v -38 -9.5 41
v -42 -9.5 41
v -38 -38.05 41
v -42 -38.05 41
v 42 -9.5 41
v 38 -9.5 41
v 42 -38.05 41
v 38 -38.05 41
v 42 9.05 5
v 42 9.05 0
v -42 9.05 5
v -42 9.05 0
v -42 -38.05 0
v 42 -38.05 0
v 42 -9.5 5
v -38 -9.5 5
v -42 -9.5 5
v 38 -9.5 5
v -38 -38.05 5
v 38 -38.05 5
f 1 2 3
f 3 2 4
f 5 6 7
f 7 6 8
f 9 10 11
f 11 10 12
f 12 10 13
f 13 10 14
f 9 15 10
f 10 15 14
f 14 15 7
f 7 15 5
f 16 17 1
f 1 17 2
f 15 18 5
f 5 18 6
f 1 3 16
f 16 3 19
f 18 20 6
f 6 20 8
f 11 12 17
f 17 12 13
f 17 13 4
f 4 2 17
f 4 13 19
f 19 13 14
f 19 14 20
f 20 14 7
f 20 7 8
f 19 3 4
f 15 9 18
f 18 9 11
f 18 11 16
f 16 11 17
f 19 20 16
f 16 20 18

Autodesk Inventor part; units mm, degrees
ref_plane "YZ Plane" through (0, 0, 0) normal (1, 0, 0) x (0, 1, 0)
ref_plane "XZ Plane" through (0, 0, 0) normal (0, 1, 0) x (-1, 0, 0)
ref_plane "XY Plane" through (0, 0, 0) normal (0, 0, 1) x (1, 0, 0)
sketch "Эскиз1" plane through (0, 0, 0) normal (0, 0, 1) x (1, 0, 0)
  line L0 (-38, 52.38) -> (38, 52.38) construction
  line L1 (38, 52.38) -> (38, -52.38) construction
  line L2 (38, -52.38) -> (-38, -52.38) construction
  line L3 (-38, -52.38) -> (-38, 52.38) construction
  line L4 (-26.6205, -33.05) -> (26.6205, -33.05) construction
  line L5 (26.6205, -33.05) -> (26.6205, 33.05) construction
  line L6 (26.6205, 33.05) -> (-26.6205, 33.05) construction
  line L7 (-26.6205, 33.05) -> (-26.6205, -33.05) construction
  line L8 (0, 33.05) -> (0, 38.05) construction
  line L9 (0, -33.05) -> (0, -38.05) construction
  line L10 (-38, 38.05) -> (38, 38.05)
  line L11 (38, 38.05) -> (38, -38.05)
  line L12 (38, -38.05) -> (-38, -38.05)
  line L13 (-38, -38.05) -> (-38, 38.05)
  dimension "d0" = 76
  dimension "d1" = 104.76
  dimension "d2" = 53.241
  dimension "d3" = 66.1
  dimension "d4" = 5
  dimension "d5" = 5
extrude "Выдавливание1" add sketch "Эскиз1" along normal blind 5
sketch "Эскиз2" plane through (0, 0, 5) normal (0, 0, 1) x (1, 0, 0)
  line L0 (38, 38.05) -> (38, -38.05) projected
  line L1 (-38, -38.05) -> (-38, 38.05) projected
  line L2 (-38, 38.05) -> (-38, -38.05) projected
  line L3 (-38, -38.05) -> (-42, -38.05)
  line L4 (38, 38.05) -> (42, 38.05)
  line L5 (42, -38.05) -> (42, 38.05)
  line L6 (-42, 38.05) -> (-42, -38.05)
  line L7 (-38, -38.05) -> (-38, 38.05)
  line L8 (38, 38.05) -> (-38, 38.05) projected
  line L9 (38, 38.05) -> (38, -38.05)
  line L10 (42, 38.05) -> (38, 38.05)
  line L11 (-38, 38.05) -> (-42, 38.05)
  line L12 (-42, -38.05) -> (-38, -38.05)
  line L13 (38, -38.05) -> (42, -38.05)
  point P0 (0, 0)
  dimension "d8" = 4
  dimension "d9" = 4
extrude "Выдавливание2" add sketch "Эскиз2" along normal blind 24 and the other way blind 5
sketch "Эскиз3" plane through (0, 0, 29) normal (0, 0, 1) x (1, 0, 0)
  line L0 (38, 38.05) -> (38, -38.05) projected
  line L1 (38, -38.05) -> (42, -38.05) projected
  line L2 (42, -38.05) -> (42, 38.05) projected
  line L3 (42, 38.05) -> (38, 38.05) projected
  line L4 (42, 9.5) -> (38, 9.5)
  line L5 (38, 9.5) -> (38, -9.5)
  line L6 (38, -9.5) -> (42, -9.5)
  line L7 (42, -9.5) -> (42, 9.5)
  line L8 (42, 9.5) -> (38, -9.5) construction
  line L9 (38, 9.5) -> (42, -9.5) construction
  line L10 (0, 0) -> (0, -84) construction
  line L11 (-42, 9.5) -> (-38, 9.5)
  line L12 (-38, -9.5) -> (-42, -9.5)
  line L13 (-38, 9.5) -> (-38, -9.5) construction
  line L14 (-38, 38.05) -> (-38, -38.05) construction
  line L15 (-42, 9.5) -> (-42, -9.5) construction
  line L16 (-42, 38.05) -> (-42, -38.05) construction
  line L17 (-38, 9.5) -> (-38, -9.5)
  line L18 (-42, -9.5) -> (-42, 9.5)
  point P0 (40, 0)
  dimension "d14" = 4
  dimension "d15" = 19
extrude "Выдавливание3" cut sketch "Эскиз3" against normal up to surface (24 mm away) contours L4 L2 L6 L0 | L11 L17 L12 L18
sketch "Эскиз4" plane through (-42, 38.05, 0) normal (0, 1, 0) x (1, 0, 0)
  line L0 (0, 0) -> (84, 0) projected
  line L1 (0, 0) -> (0, -29) projected
  line L2 (4, -29) -> (0, -29) projected
  line L3 (4, -29) -> (4, -5) projected
  line L4 (80, -5) -> (4, -5) projected
  line L5 (80, -29) -> (80, -5) projected
  line L6 (84, -29) -> (80, -29) projected
  line L7 (84, 0) -> (84, -29) projected
  point P0 (42, 0)
extrude "Выдавливание4" cut sketch "Эскиз4" against normal blind 29
sketch "Эскиз5" plane through (0, 0, 29) normal (0, 0, 1) x (1, 0, 0)
  line L0 (-38, -9.5) -> (-42, -9.5) projected
  line L1 (-42, -9.5) -> (-42, -38.05) projected
  line L2 (-42, -38.05) -> (-38, -38.05) projected
  line L3 (-38, -38.05) -> (-38, -9.5) projected
  line L4 (42, -9.5) -> (38, -9.5) projected
  line L5 (38, -9.5) -> (38, -38.05) projected
  line L6 (38, -38.05) -> (42, -38.05) projected
  line L7 (42, -38.05) -> (42, -9.5) projected
  point P0 (0, 0)
extrude "Выдавливание5" add sketch "Эскиз5" along normal blind 12
properties part number "Ard for BR"
